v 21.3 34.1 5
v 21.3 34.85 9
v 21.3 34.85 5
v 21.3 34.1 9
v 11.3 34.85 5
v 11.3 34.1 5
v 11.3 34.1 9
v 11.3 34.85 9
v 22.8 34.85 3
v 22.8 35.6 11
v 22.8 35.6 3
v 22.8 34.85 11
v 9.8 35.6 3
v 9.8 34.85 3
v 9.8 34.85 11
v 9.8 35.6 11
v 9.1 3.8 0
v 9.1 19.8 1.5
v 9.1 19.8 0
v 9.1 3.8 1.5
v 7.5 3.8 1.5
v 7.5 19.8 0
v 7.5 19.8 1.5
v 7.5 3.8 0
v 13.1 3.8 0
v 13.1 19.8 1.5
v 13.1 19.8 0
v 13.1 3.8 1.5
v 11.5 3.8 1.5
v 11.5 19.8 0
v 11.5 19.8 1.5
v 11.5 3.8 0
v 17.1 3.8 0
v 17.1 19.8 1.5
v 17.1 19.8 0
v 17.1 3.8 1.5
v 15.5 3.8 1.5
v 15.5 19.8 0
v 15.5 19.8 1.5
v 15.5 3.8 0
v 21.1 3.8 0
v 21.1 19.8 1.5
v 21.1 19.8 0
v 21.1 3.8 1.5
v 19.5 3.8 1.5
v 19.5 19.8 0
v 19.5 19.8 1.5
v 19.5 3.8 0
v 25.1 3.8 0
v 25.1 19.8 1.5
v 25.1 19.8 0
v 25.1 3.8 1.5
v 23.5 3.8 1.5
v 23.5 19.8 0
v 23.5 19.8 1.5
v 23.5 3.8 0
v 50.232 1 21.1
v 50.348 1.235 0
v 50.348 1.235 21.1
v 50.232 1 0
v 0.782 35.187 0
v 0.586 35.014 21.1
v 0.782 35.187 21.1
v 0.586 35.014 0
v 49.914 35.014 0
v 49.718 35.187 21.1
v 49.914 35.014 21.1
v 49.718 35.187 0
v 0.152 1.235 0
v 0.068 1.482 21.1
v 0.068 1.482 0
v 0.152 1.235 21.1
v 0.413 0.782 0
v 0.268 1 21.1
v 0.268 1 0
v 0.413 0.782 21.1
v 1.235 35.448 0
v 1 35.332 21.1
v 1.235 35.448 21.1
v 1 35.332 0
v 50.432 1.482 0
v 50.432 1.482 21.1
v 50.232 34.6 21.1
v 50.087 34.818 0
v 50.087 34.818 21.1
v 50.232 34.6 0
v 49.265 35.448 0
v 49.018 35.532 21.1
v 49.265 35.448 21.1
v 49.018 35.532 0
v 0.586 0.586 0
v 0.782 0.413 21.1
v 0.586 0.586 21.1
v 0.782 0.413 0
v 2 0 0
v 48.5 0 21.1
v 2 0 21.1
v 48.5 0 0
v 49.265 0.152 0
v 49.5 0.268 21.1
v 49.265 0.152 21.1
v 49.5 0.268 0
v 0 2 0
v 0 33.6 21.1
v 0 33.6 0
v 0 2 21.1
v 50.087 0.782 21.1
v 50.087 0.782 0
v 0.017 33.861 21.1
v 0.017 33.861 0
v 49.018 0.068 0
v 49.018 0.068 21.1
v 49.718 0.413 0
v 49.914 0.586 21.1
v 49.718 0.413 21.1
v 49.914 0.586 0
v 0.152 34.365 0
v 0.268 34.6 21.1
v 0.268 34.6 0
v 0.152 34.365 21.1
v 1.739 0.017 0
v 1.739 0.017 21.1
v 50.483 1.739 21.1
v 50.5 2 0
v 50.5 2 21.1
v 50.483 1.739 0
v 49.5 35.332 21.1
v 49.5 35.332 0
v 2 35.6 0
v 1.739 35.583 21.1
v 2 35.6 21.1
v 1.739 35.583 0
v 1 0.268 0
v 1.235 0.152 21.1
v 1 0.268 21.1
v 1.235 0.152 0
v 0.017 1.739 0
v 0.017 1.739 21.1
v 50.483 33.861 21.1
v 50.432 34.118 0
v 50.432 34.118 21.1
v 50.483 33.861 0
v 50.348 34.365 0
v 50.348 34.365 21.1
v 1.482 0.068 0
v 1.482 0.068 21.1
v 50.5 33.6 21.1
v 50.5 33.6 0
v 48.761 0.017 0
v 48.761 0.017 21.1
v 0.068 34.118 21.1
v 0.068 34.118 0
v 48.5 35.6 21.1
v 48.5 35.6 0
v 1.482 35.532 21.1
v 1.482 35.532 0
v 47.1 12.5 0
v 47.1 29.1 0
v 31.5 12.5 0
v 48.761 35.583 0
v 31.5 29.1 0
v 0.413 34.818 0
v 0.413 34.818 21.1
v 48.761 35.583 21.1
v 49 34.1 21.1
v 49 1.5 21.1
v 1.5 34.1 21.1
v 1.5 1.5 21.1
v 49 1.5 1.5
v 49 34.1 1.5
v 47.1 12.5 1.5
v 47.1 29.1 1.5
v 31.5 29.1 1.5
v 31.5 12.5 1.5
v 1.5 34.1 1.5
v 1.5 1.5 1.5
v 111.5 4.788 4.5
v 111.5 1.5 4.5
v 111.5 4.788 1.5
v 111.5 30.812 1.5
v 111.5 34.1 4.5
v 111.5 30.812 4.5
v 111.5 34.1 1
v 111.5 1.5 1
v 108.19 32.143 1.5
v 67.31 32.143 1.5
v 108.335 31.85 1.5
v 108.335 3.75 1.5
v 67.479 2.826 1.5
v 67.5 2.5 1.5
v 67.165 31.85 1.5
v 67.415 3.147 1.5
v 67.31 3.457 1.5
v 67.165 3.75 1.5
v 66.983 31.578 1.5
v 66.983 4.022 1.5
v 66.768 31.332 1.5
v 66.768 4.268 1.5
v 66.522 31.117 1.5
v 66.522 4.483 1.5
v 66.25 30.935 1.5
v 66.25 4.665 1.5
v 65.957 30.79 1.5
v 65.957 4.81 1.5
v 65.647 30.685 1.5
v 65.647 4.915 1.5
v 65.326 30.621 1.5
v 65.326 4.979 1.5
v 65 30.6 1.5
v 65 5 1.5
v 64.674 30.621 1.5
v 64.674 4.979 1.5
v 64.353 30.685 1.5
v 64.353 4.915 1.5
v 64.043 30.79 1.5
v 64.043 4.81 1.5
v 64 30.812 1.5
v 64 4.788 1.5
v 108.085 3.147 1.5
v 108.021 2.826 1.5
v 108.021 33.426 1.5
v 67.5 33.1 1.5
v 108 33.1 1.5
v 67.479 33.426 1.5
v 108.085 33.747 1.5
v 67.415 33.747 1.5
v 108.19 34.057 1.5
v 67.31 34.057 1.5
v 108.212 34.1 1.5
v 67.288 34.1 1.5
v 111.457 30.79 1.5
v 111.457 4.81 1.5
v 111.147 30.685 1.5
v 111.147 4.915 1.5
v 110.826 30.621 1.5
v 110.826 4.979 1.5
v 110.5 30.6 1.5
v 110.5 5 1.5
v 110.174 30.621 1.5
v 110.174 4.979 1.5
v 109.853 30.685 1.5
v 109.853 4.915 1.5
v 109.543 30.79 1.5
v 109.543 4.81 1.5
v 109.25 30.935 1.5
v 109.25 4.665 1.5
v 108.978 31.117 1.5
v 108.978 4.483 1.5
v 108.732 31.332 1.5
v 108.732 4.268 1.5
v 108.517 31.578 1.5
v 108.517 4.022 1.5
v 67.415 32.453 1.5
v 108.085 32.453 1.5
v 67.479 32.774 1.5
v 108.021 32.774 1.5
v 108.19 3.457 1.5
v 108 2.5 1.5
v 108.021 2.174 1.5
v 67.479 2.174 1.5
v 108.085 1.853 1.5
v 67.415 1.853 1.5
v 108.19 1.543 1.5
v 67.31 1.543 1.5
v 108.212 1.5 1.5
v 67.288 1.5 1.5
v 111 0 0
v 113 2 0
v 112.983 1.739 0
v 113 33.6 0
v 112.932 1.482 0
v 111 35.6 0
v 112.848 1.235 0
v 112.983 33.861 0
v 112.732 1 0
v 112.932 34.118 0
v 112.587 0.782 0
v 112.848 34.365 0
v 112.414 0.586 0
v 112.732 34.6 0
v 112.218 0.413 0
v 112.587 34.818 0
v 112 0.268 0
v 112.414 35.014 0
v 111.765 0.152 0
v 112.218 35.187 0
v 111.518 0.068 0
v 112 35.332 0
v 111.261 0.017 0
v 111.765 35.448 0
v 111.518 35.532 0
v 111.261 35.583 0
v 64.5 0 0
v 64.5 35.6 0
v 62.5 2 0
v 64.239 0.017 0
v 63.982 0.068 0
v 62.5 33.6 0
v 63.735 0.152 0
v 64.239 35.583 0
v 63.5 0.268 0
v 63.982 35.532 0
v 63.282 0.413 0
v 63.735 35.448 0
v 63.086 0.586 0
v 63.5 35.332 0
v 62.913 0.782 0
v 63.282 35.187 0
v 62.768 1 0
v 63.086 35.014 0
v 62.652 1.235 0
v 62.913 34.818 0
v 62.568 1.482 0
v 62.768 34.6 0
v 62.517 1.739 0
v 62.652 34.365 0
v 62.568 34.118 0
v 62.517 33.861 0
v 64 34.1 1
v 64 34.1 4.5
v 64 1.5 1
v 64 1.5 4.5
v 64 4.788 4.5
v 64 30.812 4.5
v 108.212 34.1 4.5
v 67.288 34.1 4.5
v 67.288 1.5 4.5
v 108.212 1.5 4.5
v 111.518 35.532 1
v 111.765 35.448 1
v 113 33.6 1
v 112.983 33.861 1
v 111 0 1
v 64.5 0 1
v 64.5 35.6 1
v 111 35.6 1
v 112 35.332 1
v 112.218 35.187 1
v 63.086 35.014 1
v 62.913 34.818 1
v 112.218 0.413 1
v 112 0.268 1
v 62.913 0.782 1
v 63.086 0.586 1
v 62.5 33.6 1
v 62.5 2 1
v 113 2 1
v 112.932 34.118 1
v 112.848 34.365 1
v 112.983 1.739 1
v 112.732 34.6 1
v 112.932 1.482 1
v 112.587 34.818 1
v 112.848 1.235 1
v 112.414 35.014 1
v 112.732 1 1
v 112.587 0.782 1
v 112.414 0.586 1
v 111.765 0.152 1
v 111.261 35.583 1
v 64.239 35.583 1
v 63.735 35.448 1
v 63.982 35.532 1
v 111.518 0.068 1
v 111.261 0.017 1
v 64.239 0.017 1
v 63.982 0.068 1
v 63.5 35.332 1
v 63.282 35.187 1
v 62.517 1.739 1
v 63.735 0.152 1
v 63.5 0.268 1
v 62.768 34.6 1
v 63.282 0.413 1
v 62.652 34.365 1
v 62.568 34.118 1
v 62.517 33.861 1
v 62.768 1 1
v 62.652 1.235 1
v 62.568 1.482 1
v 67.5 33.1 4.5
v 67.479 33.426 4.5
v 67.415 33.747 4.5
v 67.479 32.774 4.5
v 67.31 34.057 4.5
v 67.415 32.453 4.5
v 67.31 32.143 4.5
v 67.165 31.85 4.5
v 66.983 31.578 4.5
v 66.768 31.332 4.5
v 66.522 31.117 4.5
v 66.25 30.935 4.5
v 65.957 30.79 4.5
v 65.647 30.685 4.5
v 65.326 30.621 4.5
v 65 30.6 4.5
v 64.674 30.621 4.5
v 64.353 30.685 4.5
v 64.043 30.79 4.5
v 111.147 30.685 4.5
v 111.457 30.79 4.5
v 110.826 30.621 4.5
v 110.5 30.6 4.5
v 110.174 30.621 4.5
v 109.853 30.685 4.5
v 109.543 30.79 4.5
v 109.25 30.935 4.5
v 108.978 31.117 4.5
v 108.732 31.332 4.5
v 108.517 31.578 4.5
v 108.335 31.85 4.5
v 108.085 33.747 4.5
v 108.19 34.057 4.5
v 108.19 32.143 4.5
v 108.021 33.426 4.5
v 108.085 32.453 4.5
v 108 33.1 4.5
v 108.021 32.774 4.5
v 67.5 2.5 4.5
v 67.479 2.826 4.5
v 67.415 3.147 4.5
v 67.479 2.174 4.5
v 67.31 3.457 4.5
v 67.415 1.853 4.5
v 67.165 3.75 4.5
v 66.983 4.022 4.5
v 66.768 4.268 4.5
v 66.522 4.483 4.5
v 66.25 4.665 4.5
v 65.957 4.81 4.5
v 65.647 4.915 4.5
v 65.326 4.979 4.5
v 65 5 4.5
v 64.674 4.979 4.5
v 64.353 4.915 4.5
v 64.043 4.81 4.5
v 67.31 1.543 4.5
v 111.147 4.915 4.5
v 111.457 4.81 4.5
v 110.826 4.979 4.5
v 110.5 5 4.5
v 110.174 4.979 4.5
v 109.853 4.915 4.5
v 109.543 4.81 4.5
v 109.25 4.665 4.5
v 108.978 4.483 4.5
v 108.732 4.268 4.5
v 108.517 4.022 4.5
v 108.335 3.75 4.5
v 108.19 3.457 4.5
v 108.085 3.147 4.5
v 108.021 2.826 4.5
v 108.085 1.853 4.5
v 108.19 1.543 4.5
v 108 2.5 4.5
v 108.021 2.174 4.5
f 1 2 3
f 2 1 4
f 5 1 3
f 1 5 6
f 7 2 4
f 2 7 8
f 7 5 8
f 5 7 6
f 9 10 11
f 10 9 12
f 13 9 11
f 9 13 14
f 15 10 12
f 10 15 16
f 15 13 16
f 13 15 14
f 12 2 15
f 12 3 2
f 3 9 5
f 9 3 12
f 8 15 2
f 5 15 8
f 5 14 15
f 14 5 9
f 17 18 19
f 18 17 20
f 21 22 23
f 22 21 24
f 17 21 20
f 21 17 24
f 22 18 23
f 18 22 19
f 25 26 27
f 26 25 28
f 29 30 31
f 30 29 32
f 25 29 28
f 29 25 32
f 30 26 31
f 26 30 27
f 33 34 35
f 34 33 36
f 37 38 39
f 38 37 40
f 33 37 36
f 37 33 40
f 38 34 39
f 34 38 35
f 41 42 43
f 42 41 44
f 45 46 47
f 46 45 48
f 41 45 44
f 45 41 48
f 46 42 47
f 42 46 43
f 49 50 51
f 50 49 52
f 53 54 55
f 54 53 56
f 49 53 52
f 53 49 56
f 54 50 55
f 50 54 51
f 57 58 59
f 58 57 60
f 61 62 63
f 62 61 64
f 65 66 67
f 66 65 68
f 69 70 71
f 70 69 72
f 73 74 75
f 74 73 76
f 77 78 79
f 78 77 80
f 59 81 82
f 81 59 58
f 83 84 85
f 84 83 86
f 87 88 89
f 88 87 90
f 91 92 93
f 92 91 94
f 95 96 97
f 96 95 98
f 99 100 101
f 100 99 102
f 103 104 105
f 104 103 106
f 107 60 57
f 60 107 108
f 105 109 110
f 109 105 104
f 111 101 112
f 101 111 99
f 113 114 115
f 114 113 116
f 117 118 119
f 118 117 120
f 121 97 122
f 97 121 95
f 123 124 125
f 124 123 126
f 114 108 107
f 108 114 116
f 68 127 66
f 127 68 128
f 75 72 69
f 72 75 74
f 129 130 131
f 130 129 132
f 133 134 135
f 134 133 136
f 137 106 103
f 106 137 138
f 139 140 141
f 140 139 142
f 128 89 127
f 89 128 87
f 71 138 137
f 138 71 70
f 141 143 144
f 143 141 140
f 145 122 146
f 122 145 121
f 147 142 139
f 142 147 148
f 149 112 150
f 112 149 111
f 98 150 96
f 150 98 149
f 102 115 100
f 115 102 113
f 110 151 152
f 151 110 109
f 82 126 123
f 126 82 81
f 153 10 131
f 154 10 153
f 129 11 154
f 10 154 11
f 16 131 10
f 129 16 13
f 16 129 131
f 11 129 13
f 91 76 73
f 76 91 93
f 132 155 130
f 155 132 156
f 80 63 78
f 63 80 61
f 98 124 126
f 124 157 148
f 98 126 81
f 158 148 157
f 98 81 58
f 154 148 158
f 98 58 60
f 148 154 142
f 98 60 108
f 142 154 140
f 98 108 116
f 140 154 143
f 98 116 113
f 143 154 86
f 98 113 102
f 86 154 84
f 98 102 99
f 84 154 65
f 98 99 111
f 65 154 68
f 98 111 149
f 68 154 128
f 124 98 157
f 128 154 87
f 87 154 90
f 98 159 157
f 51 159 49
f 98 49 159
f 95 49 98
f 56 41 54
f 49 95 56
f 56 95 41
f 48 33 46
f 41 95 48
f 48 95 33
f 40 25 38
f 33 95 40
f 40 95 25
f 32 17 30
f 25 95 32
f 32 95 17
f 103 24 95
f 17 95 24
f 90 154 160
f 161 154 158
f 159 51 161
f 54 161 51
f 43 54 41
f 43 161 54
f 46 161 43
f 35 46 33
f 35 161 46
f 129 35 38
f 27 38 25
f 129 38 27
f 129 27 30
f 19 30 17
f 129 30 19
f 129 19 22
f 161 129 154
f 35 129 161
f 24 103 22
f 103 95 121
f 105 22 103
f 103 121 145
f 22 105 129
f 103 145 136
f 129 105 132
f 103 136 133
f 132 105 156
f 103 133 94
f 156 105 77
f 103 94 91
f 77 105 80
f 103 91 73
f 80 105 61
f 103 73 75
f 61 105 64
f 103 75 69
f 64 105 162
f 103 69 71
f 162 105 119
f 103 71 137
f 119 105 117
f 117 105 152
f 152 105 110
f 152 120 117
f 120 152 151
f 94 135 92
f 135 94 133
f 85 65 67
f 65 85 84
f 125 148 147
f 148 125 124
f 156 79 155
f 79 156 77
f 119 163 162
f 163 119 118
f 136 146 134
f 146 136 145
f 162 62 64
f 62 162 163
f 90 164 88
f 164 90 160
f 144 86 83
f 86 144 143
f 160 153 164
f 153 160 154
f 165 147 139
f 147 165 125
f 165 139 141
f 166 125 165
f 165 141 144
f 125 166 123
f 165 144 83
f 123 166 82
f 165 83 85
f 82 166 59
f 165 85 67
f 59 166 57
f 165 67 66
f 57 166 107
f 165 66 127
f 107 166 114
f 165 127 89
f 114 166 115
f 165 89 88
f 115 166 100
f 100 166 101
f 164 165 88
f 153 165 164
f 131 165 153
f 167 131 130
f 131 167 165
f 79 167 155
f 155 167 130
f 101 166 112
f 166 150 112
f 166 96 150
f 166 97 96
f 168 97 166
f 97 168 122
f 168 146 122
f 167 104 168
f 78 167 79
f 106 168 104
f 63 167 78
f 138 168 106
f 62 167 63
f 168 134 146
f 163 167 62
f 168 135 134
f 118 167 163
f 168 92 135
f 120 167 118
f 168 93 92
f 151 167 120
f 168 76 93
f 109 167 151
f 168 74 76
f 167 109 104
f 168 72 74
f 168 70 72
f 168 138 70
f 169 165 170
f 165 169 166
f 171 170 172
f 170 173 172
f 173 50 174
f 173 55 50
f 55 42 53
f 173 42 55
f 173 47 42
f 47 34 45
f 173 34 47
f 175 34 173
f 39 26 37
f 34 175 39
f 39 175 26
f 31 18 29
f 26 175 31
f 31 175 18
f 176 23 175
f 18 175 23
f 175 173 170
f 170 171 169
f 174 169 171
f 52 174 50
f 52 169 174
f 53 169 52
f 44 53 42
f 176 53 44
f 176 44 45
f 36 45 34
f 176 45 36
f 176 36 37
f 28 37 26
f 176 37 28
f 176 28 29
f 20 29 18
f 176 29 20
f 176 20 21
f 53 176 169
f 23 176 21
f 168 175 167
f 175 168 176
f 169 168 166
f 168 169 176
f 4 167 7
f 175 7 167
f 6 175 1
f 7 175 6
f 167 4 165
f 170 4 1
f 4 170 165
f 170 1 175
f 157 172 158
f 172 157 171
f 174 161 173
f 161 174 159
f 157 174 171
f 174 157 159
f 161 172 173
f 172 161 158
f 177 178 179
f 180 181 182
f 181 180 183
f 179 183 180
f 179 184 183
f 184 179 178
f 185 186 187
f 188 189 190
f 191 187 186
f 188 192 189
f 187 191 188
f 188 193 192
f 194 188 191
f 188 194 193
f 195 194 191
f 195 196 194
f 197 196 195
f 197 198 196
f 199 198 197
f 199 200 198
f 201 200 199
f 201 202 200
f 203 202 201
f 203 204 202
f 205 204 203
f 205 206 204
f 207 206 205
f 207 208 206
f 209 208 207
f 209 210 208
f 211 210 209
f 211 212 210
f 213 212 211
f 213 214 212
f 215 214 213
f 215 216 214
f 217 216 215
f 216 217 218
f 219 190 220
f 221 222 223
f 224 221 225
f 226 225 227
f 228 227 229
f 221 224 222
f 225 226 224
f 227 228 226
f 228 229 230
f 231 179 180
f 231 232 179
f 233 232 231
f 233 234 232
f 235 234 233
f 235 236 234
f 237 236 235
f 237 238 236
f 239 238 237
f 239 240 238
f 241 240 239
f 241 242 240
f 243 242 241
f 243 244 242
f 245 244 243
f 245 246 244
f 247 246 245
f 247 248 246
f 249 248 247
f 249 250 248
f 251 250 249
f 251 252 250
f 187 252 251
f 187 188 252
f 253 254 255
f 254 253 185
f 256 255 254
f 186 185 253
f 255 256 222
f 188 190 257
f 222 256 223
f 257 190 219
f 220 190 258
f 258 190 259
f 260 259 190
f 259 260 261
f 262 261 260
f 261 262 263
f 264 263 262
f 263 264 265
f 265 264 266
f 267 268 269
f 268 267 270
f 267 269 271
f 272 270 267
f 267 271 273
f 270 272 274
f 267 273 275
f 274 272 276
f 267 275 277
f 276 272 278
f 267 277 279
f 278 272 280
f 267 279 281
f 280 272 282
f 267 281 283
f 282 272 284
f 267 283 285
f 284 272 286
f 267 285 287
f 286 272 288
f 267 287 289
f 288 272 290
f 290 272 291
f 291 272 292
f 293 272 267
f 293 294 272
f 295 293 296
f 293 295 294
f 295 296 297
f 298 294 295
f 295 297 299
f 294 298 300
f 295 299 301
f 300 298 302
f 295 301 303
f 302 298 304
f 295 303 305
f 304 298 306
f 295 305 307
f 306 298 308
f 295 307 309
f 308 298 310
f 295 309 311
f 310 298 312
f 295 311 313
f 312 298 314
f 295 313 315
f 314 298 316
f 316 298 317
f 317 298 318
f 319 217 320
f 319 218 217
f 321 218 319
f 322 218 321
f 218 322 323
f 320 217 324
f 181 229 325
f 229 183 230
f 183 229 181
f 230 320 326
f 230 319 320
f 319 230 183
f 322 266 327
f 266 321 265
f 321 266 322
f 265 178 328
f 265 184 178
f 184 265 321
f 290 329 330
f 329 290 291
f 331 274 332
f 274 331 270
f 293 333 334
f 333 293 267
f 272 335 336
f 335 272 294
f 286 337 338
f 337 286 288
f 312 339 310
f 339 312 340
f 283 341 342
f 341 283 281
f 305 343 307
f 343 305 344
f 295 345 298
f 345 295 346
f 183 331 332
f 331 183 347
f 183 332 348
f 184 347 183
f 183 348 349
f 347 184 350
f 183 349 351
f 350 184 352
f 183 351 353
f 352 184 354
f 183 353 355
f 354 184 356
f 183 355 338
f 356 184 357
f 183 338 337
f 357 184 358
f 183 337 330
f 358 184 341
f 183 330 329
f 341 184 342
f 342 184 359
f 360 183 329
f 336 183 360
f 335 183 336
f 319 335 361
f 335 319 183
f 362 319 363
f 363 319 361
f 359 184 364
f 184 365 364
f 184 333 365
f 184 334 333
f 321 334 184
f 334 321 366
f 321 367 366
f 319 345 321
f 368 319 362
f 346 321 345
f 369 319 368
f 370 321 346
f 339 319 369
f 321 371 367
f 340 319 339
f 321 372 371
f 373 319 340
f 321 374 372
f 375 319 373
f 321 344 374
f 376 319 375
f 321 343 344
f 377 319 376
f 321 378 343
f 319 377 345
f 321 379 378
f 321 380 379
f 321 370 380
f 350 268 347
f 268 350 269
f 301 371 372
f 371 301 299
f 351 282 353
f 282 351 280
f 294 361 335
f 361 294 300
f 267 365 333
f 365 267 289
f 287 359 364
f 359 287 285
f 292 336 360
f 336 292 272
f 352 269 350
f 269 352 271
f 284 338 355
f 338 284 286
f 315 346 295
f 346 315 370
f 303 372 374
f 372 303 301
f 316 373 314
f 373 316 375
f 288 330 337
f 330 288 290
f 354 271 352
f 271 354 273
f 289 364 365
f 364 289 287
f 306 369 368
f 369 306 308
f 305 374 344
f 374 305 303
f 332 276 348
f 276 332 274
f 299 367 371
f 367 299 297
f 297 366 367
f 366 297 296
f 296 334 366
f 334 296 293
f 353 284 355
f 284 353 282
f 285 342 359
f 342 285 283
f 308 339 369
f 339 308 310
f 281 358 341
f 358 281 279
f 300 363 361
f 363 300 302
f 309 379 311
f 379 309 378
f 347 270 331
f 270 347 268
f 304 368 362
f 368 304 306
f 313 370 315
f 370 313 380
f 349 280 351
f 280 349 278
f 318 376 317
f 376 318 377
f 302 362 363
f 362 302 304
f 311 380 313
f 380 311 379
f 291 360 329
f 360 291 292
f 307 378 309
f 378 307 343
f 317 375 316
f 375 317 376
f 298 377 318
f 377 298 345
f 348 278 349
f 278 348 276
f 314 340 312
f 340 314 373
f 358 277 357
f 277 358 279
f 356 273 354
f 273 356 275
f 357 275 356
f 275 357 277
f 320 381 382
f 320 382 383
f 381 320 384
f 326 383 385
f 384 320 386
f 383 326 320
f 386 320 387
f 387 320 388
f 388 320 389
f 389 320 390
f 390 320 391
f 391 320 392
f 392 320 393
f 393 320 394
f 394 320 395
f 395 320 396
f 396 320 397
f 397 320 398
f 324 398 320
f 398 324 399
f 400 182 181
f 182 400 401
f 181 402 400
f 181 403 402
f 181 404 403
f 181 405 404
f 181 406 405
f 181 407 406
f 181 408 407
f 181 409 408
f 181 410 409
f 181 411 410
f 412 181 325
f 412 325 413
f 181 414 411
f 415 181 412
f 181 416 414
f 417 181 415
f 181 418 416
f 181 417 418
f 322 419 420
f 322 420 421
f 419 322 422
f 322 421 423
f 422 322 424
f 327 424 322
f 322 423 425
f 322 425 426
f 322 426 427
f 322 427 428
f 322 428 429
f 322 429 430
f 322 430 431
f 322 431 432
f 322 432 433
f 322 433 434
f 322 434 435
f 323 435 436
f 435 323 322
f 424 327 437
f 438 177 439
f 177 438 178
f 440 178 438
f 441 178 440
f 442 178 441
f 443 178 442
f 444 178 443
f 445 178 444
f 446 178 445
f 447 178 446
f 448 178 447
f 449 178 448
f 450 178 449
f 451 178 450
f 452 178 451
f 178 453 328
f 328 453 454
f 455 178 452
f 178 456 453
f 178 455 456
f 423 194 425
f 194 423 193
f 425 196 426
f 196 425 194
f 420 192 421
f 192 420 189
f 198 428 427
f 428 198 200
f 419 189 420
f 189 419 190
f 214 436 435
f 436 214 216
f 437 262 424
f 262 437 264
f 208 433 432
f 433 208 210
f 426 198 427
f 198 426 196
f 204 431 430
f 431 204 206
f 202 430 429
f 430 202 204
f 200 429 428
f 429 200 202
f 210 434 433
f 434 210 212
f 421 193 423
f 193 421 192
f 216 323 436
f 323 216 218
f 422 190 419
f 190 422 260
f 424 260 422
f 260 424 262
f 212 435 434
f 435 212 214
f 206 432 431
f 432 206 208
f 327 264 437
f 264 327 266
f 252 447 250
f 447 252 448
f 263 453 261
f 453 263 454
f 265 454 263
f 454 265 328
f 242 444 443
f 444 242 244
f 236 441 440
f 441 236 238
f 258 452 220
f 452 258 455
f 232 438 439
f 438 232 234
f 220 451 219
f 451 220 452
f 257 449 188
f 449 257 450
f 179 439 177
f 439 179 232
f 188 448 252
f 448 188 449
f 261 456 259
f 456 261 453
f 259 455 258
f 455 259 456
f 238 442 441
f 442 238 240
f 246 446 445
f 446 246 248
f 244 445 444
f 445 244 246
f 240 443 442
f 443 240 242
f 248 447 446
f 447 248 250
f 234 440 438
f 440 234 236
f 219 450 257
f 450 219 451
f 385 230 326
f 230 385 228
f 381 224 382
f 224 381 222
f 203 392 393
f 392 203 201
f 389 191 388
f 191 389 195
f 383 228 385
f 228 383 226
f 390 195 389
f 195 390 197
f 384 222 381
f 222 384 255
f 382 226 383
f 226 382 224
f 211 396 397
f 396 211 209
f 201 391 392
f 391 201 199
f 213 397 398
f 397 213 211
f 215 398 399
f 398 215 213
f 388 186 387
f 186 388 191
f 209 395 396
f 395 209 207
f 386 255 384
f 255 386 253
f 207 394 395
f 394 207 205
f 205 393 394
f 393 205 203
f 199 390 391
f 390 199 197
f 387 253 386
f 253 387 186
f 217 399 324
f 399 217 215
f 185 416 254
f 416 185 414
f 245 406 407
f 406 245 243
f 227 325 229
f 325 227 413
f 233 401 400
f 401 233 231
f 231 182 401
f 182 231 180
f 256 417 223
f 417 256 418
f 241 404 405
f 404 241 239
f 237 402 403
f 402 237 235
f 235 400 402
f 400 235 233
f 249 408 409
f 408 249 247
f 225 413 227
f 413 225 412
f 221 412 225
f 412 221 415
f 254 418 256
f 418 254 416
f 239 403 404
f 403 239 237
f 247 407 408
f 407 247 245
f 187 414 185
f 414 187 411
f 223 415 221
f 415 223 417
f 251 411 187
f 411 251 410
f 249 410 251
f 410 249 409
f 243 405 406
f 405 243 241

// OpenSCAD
// ============================================================
// Project box: Wemos D1 mini (header-mounted, rotated 90 deg, left side)
// + female RJ45 jack (right side, opening facing UP) on a 46 x 29 mm PCB.
//
// Set `part` to "cover", "bottom", "both" (print layout) or "preview".
// All units mm.
// ============================================================

part = "both";            // "box" | "cover" | "both" | "preview"

/* [PCB] */
pcb_x        = 46.5;      // PCB length, horizontal (X)
pcb_y        = 31.6;      // PCB width,  vertical   (Y)
pcb_t        = 1.6;       // PCB thickness
pcb_clear    = 0.5;       // gap around PCB (each side)

/* [Wemos D1 mini] */
mini_w       = 25.6;      // module width  (across X, since it is rotated)
mini_l       = 31.6;      // module length (along Y, USB end at one side)
mini_x_off   = 1.5;       // gap from PCB left edge to module's left edge
mini_ant_off = 6;         // antenna shift

usb_side     = "front";   // "front" (Y=0 wall) or "back" (Y=max wall)

/* [RJ45 jack - opening faces up through the cover top] */
rj45_w       = 16;        // jack width  (along Y, plan view)
rj45_d       = 15;        // jack depth  (along X, plan view)
rj45_h       = 1;         // jack height above PCB (top face of the jack)
rj45_y_off   = -3;        // shift jack centre from PCB centre (+Y / -Y)
rj45_x_inset = 1.7;       // distance from PCB right edge to jack's right side
rj45_tol     = 0.6;       // extra opening clearance (total, per axis)

/* [Heights] */
under_pcb    = 3;         // space below PCB (solder joints / pin tails)
above_pcb_min = 13.5;     // min space above PCB top (header ~8.5 + D1 mini + margin)
above_pcb    = max(above_pcb_min, rj45_h + 1);   // grows automatically to fit the jack

/* [Box] */
wall         = 1.5;
plate_t      = 1.5;       // bottom plate thickness (also the friction-fit depth)
plate_l      = 1;         // brim on bottom plate
top_t        = 1.5;       // cover top thickness
corner_r     = 2;

/* [Standoffs] */
standoff_d   = 5;
standoff_lip = 3;         // overlap onto PCB corner (retention ledge)

/* [USB-C opening] */
// USB-C receptacle is ~9 x 3.3 mm; the opening is sized for the cable's plug
// overmould (~12 x 6.5 mm) so a normal cable can be pushed all the way in.
usb_w        = 10;        // opening width (along X)
usb_h        = 4;         // opening height
usb_x_offset = 0;         // shift left/right from module centre
usb_z        = 6;         // bottom of opening above PCB top (centre ~11 = header 8.5 + module 1 + half connector)

/* [Ventilation (cover top, over the D1 mini)] */
vent_slots   = 5;
vent_slot_w  = 1.6;
vent_slot_l  = 16;
vent_pitch   = 4;

/* [Fit] */
fit_gap      = 0;         // plate-to-cover clearance (tune for your printer)

/* [Misc] */
$fn          = 48;
explode      = 12;

// ---------------- derived values ----------------
overhang = max(0, mini_l - pcb_y);
in_w   = pcb_x + 2 * pcb_clear;
in_l   = pcb_y + 2 * pcb_clear + overhang;
in_h   = under_pcb + pcb_t + above_pcb;
out_w  = in_w + 2 * wall;
out_l  = in_l + 2 * wall;
cover_h = plate_t + in_h + top_t;          // z=0 is the open rim of the cover

px0 = wall + pcb_clear;
py0 = wall + pcb_clear + (usb_side == "front" ? overhang : 0);
pcb_top_z = plate_t + under_pcb + pcb_t;

// ---------------- helpers ----------------
module rounded_box(w, l, h, r) {
    translate([r, r, 0])
        hull()
            for (x = [0, w - 2 * r], y = [0, l - 2 * r])
                translate([x, y, 0]) cylinder(r = r, h = h);
}

// footprint of the bottom plate (in cover coordinates)
module plate_footprint(w, l, h, r) {
    translate([wall + fit_gap, wall + fit_gap, 0]) cube([in_w - 2 * fit_gap, in_l - 2 * fit_gap, h]);
    translate([r, r, 0])
    hull()
    {
        for (x = [0, w - 2 * r], y = [0, l - 2 * r])
            translate([x, y, 0]) cylinder(r = r, h = plate_l);
            
    }
}

// ---------------- bottom ----------------
module bottom() {
    plate_footprint(out_w, out_l, plate_t, corner_r);
    // PCB corner standoffs, clipped to the plate footprint
    corners = [
        [px0,         py0,         1,  1],
        [px0 + pcb_x, py0,        -1,  1],
        [px0,         py0 + pcb_y, 1, -1],
        [px0 + pcb_x, py0 + pcb_y,-1, -1]
    ];
    intersection() {
        plate_footprint(out_w, out_l, plate_t+ under_pcb, corner_r);
        for (c = corners)
            translate([c[0] - c[2] * (standoff_d / 2 - standoff_lip),
                       c[1] - c[3] * (standoff_d / 2 - standoff_lip),
                       plate_t - 0.01])
                cylinder(d = standoff_d, h = under_pcb + 0.01);
    }
}

// ---------------- cover ----------------
module usb_cut() {
    cx = px0 + mini_x_off + mini_w / 2 + usb_x_offset;
    y0 = (usb_side == "front") ? -1 : out_l - wall - 1;
    translate([cx - usb_w / 2, y0, pcb_top_z + usb_z])
        cube([usb_w, wall + 2, usb_h]);
    
    translate([cx - usb_w / 2-1.5, y0, pcb_top_z + usb_z-2])
        cube([usb_w+3, 1+wall/2, usb_h+4]);    

}

module rj45_cut() {
    // opening through the cover top, over the jack
    cx = px0 + pcb_x - rj45_x_inset - rj45_d / 2;
    cy = py0 + pcb_y / 2 + rj45_y_off;
    translate([cx - (rj45_d + rj45_tol) / 2,
               cy - (rj45_w + rj45_tol) / 2,
               cover_h - top_t - 1])
        cube([rj45_d + rj45_tol, rj45_w + rj45_tol, top_t + 2]);
}

module cover() {
    vent_cx = px0 + mini_x_off + mini_w / 2;
    difference() {
        rounded_box(out_w, out_l, cover_h, corner_r);
        // cavity, open at z=0
        translate([wall, wall, -1]) cube([in_w, in_l, cover_h - top_t + 1]);
        usb_cut();
        rj45_cut();
        if (vent_slots > 0)
            for (i = [0 : vent_slots - 1]) {
                off = (i - (vent_slots - 1) / 2) * vent_pitch;
                translate([vent_cx - vent_slot_w / 2 + off,
                           out_l / 2 - vent_slot_l / 2 + mini_ant_off,
                           cover_h - top_t - 1])
                    cube([vent_slot_w, vent_slot_l, top_t + 2]);
            }
    }
}

module cover_flipped() {   // top-down on the print bed
    translate([0, out_l, cover_h]) rotate([180, 0, 0]) cover();
}

// ---------------- ghost parts for preview ----------------
module ghosts() {
    color("green", 0.5) translate([px0, py0, plate_t + under_pcb]) cube([pcb_x, pcb_y, pcb_t]);
    my0 = (usb_side == "front") ? py0 - overhang : py0;
    color("blue", 0.4) translate([px0 + mini_x_off, my0, pcb_top_z + 8.5]) cube([mini_w, mini_l, 5]);
    color("silver", 0.6)
        translate([px0 + pcb_x - rj45_x_inset - rj45_d, py0 + pcb_y / 2 + rj45_y_off - rj45_w / 2, pcb_top_z])
            cube([rj45_d, rj45_w, rj45_h]);
}

// ---------------- output ----------------
if (part == "box") {
    cover_flipped();
} else if (part == "bottom") {
    bottom();
} else if (part == "both") {
    cover_flipped();
    translate([out_w + explode, 0, 0]) bottom();
} else {
    cover();
    color("orange") bottom();
    ghosts();
}

echo(str("Outer size: ", out_w, " x ", out_l, " x ", cover_h, " mm"));
